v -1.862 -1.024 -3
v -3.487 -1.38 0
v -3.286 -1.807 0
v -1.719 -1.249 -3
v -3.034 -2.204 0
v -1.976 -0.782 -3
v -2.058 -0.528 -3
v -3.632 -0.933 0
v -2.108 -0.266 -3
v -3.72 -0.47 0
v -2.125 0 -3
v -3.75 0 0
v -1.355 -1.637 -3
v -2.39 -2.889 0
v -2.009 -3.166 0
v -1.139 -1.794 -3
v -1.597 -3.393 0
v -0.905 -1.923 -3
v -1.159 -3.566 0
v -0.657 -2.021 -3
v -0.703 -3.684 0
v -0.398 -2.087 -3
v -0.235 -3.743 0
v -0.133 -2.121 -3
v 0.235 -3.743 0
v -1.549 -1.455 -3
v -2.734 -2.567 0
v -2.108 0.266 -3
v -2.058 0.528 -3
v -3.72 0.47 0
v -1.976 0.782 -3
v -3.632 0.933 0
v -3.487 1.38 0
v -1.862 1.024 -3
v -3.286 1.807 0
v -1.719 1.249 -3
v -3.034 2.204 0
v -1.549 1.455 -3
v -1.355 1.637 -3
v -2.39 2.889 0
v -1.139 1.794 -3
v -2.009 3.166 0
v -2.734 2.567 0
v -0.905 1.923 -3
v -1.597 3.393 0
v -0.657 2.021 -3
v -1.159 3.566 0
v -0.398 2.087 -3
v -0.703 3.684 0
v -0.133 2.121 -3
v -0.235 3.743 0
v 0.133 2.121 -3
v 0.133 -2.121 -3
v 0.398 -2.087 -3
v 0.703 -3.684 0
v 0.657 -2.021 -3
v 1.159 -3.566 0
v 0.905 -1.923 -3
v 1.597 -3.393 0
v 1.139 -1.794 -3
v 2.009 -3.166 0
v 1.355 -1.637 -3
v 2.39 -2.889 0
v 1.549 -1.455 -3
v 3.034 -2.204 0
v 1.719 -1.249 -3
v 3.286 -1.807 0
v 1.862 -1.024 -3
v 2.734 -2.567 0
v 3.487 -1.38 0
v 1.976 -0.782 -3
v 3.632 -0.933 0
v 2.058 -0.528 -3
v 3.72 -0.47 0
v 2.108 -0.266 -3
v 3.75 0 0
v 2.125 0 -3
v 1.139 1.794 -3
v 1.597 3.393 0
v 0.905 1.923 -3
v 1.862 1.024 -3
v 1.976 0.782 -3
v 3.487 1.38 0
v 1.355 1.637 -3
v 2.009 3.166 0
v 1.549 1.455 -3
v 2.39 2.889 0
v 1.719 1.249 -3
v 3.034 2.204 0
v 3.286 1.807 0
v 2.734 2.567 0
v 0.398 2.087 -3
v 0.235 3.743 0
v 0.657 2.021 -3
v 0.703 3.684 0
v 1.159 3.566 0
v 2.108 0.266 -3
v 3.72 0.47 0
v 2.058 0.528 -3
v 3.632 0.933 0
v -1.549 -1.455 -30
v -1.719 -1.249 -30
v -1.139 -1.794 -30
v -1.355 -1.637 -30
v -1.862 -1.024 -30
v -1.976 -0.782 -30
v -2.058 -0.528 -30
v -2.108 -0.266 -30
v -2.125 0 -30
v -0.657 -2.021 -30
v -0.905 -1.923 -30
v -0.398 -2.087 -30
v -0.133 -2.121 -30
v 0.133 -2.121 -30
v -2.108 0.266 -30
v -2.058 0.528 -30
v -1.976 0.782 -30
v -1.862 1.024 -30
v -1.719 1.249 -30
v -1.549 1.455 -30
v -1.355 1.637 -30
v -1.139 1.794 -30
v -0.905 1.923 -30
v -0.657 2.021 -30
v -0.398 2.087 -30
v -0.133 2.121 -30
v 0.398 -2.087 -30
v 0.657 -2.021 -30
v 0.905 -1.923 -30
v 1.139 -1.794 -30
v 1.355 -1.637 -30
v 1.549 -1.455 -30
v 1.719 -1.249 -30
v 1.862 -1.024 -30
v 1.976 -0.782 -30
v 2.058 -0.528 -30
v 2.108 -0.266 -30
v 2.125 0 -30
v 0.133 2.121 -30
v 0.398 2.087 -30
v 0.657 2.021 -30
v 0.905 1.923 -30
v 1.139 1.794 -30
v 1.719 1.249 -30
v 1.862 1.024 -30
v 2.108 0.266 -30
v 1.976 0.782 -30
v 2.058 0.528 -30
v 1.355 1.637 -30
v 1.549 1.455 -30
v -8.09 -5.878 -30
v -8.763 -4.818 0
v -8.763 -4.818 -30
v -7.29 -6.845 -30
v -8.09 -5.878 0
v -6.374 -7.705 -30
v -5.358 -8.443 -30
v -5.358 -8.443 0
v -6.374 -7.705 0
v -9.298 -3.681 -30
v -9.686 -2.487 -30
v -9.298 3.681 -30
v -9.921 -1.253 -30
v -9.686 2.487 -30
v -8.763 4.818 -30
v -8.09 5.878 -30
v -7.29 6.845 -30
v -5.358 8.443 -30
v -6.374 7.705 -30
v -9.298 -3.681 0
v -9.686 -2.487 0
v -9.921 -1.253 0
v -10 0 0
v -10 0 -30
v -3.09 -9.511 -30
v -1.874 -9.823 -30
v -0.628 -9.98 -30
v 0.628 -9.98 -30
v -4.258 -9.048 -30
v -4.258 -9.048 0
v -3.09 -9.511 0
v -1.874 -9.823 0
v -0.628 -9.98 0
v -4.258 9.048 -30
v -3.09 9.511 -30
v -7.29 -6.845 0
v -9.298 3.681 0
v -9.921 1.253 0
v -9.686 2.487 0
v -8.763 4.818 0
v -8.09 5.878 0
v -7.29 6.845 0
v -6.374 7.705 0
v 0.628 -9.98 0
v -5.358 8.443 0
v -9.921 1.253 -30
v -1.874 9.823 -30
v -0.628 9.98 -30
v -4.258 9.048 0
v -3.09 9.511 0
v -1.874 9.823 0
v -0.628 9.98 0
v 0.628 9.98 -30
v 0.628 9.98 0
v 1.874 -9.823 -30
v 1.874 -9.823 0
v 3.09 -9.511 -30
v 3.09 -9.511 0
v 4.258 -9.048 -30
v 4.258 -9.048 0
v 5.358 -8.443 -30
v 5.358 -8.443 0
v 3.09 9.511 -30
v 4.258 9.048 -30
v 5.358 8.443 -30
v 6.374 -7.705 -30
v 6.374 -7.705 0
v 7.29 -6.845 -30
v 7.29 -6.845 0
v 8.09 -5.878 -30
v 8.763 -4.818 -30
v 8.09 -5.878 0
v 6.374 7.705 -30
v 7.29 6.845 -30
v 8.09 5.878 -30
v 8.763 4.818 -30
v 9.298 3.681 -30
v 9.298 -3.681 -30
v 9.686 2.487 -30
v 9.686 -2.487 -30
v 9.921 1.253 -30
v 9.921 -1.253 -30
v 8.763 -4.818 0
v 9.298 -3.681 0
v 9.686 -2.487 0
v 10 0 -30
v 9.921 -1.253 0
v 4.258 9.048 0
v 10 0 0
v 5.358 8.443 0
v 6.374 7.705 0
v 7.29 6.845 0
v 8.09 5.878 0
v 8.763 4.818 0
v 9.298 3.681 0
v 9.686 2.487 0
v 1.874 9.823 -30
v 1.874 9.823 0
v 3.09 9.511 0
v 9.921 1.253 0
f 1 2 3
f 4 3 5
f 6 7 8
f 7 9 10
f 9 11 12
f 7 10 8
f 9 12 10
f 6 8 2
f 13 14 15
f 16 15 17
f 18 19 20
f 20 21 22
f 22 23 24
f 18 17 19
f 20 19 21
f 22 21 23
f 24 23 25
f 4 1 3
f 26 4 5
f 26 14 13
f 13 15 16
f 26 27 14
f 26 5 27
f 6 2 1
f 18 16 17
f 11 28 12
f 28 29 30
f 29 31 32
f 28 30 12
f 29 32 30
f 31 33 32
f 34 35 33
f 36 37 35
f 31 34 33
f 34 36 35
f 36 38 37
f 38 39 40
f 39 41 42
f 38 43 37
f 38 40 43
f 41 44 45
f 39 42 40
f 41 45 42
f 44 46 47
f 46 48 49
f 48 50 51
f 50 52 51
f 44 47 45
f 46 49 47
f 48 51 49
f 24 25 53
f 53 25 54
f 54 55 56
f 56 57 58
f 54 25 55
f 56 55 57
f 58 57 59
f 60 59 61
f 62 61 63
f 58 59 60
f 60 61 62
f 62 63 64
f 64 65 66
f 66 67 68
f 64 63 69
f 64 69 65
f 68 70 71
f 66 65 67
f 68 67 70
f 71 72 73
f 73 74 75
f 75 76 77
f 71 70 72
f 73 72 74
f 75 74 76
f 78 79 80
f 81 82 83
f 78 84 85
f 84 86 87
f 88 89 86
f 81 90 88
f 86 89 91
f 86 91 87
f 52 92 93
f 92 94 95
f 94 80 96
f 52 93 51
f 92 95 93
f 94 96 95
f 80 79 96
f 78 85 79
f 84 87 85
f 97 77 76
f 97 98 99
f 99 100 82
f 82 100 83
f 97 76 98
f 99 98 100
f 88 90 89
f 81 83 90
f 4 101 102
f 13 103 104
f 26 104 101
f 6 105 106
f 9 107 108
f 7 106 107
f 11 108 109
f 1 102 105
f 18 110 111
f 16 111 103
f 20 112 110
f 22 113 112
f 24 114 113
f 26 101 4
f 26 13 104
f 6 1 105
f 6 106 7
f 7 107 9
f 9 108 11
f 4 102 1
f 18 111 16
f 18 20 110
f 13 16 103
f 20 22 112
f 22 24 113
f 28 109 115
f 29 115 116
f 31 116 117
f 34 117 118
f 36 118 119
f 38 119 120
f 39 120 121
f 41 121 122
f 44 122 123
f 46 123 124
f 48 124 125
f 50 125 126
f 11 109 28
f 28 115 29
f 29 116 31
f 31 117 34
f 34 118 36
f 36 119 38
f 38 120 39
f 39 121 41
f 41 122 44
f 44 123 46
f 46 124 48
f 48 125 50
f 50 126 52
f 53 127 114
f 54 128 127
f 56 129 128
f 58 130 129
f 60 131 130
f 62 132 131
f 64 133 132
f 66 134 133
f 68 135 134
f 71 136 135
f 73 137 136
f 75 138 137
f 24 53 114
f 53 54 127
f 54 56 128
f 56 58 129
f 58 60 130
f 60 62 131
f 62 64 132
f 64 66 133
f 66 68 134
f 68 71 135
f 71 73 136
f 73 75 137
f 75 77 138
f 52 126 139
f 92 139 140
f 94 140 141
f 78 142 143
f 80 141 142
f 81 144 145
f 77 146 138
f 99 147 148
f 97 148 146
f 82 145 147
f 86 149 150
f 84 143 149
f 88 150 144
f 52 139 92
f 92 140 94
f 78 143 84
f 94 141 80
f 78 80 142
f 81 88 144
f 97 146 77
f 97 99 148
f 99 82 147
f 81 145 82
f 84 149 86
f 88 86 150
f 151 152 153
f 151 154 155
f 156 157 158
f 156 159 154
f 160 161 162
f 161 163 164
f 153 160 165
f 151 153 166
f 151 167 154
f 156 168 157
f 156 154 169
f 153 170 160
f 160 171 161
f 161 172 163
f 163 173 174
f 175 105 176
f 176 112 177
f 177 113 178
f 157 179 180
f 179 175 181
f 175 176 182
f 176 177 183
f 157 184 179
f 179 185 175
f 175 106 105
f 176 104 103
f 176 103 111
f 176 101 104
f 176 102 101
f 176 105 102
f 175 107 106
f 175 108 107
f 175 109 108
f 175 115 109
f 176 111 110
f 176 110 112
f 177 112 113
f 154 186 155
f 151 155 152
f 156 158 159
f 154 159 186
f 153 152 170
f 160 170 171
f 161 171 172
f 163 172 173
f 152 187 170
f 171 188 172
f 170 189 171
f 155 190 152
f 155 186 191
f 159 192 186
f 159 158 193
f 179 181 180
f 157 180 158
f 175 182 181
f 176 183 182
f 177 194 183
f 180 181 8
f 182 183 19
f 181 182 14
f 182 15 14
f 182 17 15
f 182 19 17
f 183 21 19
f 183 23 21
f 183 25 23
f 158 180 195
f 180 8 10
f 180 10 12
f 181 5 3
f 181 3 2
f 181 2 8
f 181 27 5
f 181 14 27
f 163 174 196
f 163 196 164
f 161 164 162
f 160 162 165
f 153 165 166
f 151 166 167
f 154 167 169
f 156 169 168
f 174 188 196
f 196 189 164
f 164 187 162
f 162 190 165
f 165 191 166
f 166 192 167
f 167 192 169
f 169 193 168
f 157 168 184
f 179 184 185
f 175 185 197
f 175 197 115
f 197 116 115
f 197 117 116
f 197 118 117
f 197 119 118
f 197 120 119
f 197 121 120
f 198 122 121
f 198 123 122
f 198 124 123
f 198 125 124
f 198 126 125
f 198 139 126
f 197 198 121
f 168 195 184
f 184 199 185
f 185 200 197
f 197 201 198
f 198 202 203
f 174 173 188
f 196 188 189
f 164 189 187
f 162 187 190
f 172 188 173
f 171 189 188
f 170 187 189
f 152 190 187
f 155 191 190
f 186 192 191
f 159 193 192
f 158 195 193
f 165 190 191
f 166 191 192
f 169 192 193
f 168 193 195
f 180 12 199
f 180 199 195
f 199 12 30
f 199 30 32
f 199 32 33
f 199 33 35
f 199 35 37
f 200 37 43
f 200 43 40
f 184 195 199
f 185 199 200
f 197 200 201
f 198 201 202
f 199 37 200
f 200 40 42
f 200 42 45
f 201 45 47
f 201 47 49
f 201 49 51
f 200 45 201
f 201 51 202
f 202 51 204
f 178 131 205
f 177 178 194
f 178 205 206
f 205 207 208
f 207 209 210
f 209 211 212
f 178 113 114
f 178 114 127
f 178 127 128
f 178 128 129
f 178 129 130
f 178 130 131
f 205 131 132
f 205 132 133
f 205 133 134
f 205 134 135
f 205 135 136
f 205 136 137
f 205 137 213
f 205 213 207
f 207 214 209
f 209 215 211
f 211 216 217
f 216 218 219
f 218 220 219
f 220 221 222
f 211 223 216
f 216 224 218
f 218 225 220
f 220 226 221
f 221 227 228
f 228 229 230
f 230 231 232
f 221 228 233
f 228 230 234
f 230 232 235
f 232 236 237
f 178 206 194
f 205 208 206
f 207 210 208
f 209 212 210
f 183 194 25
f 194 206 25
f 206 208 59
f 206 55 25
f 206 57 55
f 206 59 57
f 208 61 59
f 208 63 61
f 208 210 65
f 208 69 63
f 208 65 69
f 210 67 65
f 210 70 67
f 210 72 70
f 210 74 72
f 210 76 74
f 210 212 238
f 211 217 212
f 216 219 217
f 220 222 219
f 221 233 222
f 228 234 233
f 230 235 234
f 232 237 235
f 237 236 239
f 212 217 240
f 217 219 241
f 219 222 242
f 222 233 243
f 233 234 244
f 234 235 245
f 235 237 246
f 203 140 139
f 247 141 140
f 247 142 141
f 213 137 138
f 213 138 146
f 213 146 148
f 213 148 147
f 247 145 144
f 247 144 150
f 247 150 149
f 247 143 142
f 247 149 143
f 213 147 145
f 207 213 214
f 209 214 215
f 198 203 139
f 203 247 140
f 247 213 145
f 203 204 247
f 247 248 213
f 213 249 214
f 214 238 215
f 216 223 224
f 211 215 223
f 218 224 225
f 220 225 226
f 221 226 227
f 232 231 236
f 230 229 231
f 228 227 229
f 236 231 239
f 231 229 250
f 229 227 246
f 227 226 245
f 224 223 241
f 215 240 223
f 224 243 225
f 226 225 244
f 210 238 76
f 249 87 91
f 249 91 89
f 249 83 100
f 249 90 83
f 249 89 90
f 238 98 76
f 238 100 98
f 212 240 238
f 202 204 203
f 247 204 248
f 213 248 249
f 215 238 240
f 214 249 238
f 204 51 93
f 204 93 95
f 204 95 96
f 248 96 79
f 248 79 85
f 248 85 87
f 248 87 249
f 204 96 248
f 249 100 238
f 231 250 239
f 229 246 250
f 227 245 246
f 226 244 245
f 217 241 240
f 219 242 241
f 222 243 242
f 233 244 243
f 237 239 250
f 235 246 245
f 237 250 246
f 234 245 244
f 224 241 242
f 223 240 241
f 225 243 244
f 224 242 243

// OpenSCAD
$fn = 50;

difference() {
	union() {
		translate(v = [0, 0, -30.0]) {
			cylinder(h = 30, r = 10.0);
		}
	}
	union() {
		translate(v = [0, 0, 0]) {
			rotate(a = [0, 0, 0]) {
				difference() {
					union() {
						translate(v = [0, 0, -33.0]) {
							cylinder(h = 33, r = 2.0);
						}
						translate(v = [0, 0, -3]) {
							cylinder(h = 3, r1 = 2.125, r2 = 3.75);
						}
						translate(v = [0, 0, -33.0]) {
							cylinder(h = 33, r = 2.125);
						}
						translate(v = [0, 0, -33.0]) {
							cylinder(h = 33, r = 2.0);
						}
					}
					union();
				}
			}
		}
	}
}
